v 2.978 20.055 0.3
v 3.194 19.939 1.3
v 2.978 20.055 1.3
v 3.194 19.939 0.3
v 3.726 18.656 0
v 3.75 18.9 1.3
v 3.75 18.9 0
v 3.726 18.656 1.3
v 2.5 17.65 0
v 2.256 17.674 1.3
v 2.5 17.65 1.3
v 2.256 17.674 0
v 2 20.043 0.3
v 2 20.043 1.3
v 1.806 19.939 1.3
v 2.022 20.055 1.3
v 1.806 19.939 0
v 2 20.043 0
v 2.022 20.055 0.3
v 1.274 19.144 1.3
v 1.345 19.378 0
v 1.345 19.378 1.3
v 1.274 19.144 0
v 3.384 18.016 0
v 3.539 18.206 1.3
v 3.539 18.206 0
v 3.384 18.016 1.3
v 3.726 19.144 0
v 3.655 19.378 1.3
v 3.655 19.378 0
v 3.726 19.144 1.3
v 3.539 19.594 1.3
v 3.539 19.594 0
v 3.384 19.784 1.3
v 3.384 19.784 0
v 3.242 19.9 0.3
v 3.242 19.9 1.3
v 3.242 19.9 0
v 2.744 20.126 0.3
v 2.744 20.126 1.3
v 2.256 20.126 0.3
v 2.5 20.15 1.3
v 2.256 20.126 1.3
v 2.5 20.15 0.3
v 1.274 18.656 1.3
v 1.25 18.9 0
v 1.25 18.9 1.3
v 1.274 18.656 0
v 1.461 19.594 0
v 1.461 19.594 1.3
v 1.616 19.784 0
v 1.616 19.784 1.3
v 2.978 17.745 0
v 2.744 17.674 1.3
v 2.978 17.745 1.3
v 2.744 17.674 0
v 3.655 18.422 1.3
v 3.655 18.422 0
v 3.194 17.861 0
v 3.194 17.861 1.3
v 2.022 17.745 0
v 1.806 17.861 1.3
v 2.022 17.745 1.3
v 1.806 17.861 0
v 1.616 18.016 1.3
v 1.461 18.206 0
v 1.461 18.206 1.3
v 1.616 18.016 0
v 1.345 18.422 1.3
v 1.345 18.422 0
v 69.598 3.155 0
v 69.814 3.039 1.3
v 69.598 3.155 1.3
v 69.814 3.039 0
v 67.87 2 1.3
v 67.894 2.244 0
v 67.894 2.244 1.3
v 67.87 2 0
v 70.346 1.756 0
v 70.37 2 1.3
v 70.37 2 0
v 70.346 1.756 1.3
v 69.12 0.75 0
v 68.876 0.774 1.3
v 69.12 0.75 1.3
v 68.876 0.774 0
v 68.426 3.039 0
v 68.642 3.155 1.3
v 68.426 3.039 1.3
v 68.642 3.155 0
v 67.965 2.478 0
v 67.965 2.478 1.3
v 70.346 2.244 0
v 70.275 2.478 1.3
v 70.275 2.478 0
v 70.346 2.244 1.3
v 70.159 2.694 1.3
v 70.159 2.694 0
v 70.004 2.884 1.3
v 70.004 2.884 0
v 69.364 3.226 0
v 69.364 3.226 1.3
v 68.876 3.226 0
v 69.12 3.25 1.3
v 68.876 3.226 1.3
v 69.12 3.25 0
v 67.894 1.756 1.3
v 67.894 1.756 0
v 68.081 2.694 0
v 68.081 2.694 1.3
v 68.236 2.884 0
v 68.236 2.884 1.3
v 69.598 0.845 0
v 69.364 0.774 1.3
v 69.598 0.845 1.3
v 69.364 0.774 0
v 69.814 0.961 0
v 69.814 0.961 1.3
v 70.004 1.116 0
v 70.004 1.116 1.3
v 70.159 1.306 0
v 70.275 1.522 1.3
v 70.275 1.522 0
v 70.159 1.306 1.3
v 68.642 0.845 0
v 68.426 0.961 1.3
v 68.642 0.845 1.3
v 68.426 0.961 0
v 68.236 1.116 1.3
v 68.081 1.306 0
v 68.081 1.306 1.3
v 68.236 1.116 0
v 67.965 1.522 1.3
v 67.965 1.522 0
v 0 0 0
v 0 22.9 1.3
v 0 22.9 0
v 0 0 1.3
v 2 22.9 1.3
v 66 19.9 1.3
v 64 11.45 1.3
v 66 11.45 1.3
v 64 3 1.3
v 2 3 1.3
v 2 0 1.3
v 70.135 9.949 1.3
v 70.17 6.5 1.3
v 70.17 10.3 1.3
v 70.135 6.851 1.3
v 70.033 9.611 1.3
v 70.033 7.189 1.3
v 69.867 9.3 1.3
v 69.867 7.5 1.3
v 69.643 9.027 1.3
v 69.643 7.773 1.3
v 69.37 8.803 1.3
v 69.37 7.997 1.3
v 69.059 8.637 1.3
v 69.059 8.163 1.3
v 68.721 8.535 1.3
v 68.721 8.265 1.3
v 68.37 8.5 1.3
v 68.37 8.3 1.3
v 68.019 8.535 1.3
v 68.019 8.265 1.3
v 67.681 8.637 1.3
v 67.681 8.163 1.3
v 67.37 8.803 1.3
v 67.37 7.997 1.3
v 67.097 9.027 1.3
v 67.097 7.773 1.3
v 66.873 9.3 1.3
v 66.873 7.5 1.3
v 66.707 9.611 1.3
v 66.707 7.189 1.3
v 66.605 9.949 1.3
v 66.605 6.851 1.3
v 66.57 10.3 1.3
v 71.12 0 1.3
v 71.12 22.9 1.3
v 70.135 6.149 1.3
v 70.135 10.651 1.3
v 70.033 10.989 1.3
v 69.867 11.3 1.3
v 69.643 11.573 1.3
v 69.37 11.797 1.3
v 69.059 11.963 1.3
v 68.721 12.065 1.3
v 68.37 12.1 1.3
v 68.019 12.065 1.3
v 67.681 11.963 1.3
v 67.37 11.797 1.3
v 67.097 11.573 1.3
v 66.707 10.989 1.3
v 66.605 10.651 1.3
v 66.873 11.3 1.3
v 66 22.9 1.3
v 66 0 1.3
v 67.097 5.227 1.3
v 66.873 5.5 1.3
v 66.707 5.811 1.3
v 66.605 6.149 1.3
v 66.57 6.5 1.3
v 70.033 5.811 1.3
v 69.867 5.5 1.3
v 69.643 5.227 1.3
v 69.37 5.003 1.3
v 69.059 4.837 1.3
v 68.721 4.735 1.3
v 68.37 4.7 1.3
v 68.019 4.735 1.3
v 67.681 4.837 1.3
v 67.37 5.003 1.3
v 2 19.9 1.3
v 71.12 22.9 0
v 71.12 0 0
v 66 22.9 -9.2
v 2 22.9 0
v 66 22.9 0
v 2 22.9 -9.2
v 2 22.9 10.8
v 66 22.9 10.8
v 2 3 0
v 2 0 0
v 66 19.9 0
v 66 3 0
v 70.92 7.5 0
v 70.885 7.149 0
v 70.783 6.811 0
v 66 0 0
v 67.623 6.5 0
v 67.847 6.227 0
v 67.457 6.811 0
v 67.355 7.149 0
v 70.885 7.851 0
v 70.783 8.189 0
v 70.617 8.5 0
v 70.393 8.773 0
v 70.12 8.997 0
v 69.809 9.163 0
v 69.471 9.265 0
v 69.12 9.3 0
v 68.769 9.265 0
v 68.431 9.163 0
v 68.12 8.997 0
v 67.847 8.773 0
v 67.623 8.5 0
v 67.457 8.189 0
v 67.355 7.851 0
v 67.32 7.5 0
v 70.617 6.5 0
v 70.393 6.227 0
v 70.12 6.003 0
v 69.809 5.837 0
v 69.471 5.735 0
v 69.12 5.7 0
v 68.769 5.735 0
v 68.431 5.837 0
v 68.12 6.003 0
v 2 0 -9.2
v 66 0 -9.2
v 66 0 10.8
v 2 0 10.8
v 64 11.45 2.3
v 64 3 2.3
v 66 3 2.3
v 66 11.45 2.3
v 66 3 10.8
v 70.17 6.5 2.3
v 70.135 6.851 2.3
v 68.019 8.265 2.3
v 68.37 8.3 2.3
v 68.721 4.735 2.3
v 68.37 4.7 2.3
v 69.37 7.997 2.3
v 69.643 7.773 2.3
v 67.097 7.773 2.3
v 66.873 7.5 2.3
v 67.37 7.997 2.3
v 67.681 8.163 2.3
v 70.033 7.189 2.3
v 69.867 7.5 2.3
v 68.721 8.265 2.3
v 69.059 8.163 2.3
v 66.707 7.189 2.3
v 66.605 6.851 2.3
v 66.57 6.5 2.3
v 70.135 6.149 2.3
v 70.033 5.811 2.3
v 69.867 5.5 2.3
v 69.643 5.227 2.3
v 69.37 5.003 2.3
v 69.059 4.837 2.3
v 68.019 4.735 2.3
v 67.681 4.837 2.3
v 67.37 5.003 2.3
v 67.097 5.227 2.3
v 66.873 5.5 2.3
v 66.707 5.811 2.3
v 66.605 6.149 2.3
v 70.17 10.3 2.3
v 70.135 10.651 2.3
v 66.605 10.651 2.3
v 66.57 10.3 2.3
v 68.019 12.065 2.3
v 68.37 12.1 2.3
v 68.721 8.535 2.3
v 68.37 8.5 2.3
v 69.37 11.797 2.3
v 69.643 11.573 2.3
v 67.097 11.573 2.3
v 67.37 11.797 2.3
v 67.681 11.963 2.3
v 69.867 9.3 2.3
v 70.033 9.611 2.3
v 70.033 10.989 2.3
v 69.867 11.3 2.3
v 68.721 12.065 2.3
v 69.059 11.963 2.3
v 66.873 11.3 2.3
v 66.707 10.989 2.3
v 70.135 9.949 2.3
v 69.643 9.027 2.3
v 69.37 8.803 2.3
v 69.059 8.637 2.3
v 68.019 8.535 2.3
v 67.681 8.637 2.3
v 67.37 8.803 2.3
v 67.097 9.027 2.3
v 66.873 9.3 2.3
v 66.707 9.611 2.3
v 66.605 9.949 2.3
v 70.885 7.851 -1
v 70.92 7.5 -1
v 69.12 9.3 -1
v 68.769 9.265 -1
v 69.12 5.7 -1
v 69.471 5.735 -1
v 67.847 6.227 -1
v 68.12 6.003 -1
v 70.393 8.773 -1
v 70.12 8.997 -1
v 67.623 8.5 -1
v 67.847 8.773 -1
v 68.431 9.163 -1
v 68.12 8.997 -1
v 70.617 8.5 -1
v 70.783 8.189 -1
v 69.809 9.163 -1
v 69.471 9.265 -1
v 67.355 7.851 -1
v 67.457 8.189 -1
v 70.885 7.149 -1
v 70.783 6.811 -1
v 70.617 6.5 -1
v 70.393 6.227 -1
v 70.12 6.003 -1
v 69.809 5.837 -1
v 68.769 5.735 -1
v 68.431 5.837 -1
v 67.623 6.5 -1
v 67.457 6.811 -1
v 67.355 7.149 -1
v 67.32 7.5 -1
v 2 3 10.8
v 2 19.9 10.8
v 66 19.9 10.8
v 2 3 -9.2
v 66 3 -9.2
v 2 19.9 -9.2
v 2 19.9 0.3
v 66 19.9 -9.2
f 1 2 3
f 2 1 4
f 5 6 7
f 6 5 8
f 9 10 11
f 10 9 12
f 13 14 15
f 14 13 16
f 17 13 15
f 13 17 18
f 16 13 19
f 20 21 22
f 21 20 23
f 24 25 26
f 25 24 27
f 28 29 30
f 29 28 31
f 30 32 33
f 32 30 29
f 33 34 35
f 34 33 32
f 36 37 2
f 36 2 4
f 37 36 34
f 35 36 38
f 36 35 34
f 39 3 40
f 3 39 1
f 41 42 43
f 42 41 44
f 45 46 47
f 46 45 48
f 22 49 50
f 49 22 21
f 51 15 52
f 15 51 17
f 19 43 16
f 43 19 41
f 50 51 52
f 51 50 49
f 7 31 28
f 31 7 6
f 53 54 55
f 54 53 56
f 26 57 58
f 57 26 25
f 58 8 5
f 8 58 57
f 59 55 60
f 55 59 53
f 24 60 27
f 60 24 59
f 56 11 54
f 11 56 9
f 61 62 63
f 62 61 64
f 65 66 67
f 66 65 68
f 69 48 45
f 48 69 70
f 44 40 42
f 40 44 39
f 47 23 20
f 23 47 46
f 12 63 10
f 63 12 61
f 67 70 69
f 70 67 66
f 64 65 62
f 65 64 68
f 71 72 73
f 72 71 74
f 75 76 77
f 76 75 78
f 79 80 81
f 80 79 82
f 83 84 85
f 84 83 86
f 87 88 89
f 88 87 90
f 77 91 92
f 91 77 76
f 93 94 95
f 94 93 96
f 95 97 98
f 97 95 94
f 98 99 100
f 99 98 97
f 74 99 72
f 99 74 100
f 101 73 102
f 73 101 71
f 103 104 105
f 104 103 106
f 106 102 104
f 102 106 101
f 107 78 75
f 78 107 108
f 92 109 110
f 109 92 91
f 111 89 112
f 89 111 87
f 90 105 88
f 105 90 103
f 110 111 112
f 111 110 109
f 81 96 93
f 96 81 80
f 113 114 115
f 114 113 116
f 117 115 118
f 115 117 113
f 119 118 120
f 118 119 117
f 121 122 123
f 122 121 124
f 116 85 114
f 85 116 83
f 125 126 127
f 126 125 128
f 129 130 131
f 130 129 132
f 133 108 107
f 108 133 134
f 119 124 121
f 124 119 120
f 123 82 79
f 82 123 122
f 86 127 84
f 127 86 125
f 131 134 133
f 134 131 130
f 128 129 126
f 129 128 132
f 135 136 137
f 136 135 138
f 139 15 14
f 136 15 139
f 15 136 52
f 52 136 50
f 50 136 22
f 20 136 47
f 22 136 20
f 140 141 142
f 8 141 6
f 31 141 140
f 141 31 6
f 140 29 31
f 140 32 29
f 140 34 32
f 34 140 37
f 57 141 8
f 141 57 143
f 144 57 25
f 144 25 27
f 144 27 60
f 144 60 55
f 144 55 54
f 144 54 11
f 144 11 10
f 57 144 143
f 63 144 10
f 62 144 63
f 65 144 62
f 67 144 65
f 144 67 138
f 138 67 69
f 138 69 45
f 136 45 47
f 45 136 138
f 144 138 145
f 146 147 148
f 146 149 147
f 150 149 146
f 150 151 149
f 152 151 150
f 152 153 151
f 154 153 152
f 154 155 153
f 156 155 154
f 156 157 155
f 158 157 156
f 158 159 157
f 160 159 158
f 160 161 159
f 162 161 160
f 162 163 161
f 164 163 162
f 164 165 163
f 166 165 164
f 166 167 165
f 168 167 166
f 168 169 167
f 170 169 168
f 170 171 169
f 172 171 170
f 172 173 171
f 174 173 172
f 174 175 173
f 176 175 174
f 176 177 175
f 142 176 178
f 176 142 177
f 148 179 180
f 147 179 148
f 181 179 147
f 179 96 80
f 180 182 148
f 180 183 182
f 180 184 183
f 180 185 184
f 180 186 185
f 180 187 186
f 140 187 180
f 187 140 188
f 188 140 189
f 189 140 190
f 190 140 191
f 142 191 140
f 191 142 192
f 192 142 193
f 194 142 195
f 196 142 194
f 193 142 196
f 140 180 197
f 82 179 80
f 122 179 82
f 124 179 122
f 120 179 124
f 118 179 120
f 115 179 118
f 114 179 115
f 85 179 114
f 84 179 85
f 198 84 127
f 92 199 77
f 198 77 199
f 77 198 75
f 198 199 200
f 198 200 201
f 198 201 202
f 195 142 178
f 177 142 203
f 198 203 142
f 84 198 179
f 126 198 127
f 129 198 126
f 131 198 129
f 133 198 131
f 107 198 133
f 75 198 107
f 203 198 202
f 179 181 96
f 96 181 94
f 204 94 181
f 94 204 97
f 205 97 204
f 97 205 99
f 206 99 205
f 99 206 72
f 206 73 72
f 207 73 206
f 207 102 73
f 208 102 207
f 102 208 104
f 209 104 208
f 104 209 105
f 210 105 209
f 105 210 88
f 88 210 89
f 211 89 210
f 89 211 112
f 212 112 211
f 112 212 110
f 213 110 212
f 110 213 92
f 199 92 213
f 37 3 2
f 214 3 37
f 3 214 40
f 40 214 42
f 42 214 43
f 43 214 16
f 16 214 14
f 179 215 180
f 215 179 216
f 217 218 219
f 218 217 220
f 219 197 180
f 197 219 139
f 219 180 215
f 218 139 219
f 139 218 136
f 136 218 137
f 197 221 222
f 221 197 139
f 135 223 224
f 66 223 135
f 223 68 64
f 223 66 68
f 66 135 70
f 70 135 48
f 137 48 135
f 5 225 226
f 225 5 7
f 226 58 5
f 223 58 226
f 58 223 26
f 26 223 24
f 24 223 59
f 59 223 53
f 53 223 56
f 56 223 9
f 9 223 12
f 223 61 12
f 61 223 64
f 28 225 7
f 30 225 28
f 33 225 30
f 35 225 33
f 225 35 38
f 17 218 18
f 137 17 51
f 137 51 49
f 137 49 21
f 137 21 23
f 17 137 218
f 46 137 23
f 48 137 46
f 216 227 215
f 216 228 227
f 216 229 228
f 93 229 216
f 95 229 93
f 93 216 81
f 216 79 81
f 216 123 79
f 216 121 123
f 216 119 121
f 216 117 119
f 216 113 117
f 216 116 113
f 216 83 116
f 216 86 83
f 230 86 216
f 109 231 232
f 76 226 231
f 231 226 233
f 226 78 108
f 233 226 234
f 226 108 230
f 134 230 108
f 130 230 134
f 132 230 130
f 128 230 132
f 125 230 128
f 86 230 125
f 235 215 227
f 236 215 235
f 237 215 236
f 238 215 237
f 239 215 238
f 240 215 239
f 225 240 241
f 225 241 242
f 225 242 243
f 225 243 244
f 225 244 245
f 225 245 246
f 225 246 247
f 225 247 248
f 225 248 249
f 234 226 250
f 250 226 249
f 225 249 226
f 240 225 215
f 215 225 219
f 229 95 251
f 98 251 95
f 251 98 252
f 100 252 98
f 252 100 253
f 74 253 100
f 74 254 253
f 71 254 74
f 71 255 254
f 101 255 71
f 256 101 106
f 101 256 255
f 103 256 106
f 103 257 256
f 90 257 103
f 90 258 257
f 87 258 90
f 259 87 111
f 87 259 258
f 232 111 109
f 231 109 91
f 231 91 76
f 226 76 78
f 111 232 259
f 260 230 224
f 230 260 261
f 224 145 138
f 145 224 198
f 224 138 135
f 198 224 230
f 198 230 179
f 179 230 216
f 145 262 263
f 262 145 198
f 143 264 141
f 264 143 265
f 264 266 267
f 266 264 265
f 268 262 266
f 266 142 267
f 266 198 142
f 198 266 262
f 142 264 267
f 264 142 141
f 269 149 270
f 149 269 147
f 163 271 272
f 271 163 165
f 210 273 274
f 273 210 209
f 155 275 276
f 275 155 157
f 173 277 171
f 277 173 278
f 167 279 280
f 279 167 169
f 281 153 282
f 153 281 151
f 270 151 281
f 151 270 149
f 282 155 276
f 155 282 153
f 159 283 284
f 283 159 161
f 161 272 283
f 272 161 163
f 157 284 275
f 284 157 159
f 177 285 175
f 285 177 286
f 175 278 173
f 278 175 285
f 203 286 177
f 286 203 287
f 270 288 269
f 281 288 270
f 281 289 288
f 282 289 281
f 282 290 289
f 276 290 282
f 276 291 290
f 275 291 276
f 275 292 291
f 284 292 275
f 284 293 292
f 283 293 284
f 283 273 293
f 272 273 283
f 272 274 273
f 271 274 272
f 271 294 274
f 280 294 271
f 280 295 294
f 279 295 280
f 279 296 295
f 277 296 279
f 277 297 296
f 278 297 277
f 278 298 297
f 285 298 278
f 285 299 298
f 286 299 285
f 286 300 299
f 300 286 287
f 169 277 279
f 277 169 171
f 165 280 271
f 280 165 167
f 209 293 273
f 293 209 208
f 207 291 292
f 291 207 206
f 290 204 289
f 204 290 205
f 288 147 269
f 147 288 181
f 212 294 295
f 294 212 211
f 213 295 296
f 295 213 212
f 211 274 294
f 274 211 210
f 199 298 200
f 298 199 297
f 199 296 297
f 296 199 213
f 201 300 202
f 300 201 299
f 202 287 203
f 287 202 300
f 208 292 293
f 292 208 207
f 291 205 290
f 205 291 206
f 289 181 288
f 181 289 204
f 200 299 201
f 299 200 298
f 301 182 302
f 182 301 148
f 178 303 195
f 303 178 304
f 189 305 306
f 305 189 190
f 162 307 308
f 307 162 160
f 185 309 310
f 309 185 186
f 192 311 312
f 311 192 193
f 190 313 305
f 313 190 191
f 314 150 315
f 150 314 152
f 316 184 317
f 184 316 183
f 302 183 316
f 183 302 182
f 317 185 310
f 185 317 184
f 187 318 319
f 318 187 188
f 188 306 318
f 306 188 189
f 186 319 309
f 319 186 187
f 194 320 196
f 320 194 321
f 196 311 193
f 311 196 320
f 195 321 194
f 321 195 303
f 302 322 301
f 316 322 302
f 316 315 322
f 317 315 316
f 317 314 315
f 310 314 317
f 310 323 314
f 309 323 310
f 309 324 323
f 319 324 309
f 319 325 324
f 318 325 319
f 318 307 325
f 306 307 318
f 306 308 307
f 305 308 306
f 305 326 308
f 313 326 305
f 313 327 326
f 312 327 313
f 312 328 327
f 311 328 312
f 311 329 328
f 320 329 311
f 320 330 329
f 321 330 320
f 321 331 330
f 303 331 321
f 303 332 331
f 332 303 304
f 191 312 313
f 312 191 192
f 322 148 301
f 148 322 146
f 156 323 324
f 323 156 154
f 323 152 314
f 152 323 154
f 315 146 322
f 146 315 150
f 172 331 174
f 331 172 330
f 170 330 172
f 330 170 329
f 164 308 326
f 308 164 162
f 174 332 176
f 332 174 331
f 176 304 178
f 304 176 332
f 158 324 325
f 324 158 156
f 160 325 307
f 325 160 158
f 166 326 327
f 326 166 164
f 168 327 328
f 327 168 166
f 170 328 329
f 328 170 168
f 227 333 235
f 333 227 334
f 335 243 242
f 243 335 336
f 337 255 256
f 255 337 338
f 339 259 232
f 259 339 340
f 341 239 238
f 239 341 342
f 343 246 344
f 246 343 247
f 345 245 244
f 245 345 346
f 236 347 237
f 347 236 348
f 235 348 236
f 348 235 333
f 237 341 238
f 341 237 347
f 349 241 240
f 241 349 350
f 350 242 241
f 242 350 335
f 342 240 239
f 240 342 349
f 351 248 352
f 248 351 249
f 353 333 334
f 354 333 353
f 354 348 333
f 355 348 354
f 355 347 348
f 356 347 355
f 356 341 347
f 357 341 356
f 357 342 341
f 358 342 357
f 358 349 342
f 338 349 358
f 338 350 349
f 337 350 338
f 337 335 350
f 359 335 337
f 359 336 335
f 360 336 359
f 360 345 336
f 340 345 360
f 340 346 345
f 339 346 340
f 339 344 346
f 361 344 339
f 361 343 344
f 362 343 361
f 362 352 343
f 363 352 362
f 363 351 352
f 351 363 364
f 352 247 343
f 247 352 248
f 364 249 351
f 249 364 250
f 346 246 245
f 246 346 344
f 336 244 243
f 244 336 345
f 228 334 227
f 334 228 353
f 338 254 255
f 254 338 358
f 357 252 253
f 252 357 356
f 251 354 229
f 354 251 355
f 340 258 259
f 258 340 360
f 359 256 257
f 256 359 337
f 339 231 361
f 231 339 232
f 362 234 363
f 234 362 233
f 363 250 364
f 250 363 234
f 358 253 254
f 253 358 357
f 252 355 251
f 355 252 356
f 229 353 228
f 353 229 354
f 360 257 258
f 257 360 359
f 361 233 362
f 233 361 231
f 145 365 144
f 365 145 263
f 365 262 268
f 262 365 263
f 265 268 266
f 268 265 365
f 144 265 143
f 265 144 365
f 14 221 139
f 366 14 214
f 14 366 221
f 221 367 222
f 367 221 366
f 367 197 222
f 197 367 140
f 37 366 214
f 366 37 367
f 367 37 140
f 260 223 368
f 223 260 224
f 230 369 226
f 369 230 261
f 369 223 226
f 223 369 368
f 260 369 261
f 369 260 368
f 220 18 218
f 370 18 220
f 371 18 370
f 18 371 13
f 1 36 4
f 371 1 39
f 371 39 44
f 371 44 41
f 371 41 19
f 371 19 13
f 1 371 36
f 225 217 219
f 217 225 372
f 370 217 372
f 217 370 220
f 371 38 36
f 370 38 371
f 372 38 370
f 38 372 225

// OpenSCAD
// Arduino Yun Mini 3D model for planning, http://vor.space
// ©Futurice Oy, paul.houghton@futurice.com, CC-attribution-sharealike license, http://creativecommons.org/licenses/by-sa/4.0/

$fn = 32;

length = 71.12;
width = 22.9;
height = 1.3;
header_length = 64;
header_width = 3;
header_height = 9.5;
button_radius = 1.8;

arduino_yun_mini();

module arduino_yun_mini() {
    difference() {
        color("green") board();
        union() {
            hole(x = 2.5, y = width - 4);
            hole(x = length - 2, y = 2);
        }
    }

//    color("magenta") usb_power();
//    color("yellow") board_space();
    color("red") leds();
    color("blue") button(y = 6.5);
    color("blue") button(y = 10.3);
    color("violet") bottom_button(y = 10.3);
//    color("orange") hull() {
//         bottom_slot(y = 8);
//         bottom_slot(y = width - 8);
//    }
    color("black") header(x=2, z=height, y=0);
    color("black") header(x=2, z=height, y=width-header_width);
    color("silver") header(x=2, z=-9.2, y=0);
    color("silver") header(x=2, z=-9.2, y=width-header_width);
}

module board() {
    cube([length, width, height]);
}

module usb_power() {
    translate([-102, (width - 15) / 2, height - 5]) cube([100.5 + length, 15, 3 + 8]);
}

module board_space() {
    hull() {
        translate([0, 0, height - 5]) cube([length, width, 16.5]);
        translate([length, (width-5)/2, height-5]) cube([8, 5, 10]);
    }
}

module header(x=2, y=0, z=0) {
    translate([x, y, z]) cube([header_length, header_width, header_height]);
}

module leds() {
    translate([header_length, 0, height]) cube([2, width/2, 1]);
}

module button(y = 0) {
    translate([length - 2.75, y, height]) cylinder(r=button_radius, h=1);    
}

module bottom_button(bx = length - 2, by = 7.5) {
    translate([bx, by, -1]) cylinder(r=button_radius, h=1); 
}

module bottom_slot(y = 0) {
    hull() {
        translate([length - 10, y, -100]) cylinder(r=2, h=100); 
        translate([10, y, -100]) cylinder(r=2.2, h=100); 
    }
}

module hole(x = 0, y = 0) {
    translate([x, y, -9]) cylinder(h = 10 + height, r = 2.5/2);
}
